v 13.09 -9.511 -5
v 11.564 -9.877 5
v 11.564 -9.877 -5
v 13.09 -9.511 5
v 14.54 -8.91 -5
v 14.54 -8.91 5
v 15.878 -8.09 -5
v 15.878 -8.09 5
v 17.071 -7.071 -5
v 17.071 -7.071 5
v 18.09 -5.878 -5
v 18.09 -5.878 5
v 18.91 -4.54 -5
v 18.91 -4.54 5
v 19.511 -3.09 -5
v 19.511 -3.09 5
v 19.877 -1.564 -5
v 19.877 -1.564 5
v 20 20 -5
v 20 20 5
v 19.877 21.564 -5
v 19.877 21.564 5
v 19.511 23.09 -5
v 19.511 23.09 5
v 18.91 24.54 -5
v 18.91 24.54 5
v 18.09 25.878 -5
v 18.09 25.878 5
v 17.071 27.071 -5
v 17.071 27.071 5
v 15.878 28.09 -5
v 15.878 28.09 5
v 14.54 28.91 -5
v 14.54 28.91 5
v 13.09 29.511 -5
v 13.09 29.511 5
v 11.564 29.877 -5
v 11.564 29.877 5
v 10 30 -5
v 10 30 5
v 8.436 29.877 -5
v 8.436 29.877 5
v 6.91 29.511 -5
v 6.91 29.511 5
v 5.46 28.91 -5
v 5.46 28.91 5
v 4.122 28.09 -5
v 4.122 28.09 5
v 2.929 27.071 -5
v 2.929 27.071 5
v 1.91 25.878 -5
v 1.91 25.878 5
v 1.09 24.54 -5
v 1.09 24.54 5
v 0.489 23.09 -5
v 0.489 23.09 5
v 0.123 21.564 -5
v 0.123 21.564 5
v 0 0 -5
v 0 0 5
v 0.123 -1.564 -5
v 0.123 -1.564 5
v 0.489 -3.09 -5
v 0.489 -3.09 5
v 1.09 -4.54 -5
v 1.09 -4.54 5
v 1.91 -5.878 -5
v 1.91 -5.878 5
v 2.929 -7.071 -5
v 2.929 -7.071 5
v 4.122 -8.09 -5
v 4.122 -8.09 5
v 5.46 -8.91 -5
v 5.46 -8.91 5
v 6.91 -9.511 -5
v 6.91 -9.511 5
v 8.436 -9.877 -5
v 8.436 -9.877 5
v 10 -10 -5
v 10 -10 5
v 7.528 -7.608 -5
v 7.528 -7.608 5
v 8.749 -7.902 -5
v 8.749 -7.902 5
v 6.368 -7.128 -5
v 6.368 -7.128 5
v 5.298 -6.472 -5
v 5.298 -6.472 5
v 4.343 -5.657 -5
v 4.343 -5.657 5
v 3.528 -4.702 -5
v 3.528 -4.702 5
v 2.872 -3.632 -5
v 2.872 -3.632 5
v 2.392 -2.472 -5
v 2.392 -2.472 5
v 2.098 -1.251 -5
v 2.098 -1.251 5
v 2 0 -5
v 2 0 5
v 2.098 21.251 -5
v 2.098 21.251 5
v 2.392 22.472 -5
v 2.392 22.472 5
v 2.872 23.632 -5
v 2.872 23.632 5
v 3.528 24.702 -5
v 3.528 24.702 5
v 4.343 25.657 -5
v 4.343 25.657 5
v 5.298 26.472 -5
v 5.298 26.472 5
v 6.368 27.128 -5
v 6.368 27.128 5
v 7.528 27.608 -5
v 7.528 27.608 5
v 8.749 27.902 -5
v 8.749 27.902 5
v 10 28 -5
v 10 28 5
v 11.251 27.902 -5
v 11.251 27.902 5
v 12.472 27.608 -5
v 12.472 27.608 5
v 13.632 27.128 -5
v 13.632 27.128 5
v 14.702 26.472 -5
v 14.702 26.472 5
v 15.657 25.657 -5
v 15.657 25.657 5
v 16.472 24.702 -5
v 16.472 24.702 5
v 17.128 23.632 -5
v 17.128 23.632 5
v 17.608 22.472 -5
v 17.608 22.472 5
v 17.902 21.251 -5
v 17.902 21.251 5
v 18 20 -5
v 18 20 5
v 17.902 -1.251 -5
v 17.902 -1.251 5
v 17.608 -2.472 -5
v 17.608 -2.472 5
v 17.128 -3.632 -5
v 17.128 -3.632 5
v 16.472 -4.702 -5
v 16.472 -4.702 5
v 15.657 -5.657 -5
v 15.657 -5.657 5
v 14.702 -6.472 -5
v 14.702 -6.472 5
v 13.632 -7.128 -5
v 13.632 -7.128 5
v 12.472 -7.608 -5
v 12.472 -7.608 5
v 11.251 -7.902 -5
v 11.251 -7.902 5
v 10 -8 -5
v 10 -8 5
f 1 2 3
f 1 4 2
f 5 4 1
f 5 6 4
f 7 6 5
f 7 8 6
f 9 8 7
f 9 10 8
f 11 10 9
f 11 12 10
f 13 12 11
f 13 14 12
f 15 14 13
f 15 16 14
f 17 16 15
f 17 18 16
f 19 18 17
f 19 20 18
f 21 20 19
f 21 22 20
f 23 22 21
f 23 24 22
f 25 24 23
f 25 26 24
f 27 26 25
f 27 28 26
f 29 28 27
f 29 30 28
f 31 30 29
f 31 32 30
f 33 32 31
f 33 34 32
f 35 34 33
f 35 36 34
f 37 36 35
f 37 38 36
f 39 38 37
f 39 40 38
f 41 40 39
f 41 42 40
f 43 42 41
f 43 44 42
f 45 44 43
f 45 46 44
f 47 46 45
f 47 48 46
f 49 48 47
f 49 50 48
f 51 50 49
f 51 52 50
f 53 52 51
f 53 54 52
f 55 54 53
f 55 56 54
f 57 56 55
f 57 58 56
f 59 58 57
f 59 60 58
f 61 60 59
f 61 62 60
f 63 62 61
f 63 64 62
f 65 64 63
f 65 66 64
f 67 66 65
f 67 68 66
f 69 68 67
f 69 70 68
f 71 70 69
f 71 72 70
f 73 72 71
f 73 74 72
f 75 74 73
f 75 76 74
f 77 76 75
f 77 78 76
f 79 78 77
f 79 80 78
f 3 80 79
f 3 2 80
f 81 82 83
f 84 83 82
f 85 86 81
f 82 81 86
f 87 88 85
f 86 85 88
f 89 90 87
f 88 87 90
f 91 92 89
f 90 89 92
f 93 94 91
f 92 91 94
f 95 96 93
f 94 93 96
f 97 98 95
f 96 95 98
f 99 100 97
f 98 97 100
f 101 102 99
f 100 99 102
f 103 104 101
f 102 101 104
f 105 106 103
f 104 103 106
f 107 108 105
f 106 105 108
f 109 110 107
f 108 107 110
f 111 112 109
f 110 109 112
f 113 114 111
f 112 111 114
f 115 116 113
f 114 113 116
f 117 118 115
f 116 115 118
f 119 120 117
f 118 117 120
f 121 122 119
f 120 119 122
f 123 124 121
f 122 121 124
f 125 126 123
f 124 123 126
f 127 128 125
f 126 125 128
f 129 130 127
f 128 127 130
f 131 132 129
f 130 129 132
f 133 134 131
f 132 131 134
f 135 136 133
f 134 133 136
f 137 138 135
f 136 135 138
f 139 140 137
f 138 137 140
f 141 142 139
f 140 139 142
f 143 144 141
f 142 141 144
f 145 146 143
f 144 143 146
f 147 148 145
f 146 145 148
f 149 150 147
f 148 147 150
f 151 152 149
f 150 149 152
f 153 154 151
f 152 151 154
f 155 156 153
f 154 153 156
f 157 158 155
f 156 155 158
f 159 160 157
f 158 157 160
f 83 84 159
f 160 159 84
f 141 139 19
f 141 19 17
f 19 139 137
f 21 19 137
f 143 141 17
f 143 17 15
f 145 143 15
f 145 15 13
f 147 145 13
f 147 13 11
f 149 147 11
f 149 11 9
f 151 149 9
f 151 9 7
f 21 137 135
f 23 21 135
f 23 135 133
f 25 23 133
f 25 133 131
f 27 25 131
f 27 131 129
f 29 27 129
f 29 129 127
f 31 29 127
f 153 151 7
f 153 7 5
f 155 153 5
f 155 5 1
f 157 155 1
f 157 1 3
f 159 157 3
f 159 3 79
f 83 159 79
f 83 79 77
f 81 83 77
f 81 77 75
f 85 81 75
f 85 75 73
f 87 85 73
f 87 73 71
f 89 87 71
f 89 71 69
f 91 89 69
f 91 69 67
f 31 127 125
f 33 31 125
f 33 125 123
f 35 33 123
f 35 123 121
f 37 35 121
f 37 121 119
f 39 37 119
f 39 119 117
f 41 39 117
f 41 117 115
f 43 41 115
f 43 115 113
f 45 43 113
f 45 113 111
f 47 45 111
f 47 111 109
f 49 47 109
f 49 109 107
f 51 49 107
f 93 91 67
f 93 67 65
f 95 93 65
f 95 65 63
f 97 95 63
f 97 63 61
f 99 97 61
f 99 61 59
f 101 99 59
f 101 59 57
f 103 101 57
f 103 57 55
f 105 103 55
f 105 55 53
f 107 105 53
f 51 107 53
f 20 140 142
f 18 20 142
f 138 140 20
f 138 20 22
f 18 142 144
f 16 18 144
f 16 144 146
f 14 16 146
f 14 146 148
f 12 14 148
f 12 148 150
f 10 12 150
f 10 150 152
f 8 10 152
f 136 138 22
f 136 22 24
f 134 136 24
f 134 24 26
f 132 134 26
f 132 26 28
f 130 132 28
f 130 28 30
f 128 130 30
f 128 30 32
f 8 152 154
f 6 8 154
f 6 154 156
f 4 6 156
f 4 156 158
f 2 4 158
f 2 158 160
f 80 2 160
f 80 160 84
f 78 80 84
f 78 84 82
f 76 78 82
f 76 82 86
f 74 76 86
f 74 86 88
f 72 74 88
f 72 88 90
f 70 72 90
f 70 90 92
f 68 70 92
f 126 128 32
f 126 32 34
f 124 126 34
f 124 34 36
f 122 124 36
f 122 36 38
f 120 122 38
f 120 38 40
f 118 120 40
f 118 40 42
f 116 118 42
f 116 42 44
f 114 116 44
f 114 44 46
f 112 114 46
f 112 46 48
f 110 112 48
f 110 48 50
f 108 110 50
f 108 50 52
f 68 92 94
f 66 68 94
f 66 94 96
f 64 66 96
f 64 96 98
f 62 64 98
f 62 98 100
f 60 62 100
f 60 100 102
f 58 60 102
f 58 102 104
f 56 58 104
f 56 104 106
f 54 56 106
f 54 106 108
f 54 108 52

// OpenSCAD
linear_extrude(height=10, center=true, convexity=10)
difference() {
    geom_outer();
    geom_inner();
}


module geom_outer() {
    polygon(points=[
        [0, 0],
        [0, 20],
        [0, 0],
        [0.123117, 21.564345],
        [0.489435, 23.09017],
        [1.089935, 24.539905],
        [1.90983, 25.877853],
        [2.928932, 27.071068],
        [4.122147, 28.09017],
        [5.460095, 28.910065],
        [6.90983, 29.510565],
        [8.435655, 29.876883],
        [10, 30],
        [11.564345, 29.876883],
        [13.09017, 29.510565],
        [14.539905, 28.910065],
        [15.877853, 28.09017],
        [17.071068, 27.071068],
        [18.09017, 25.877853],
        [18.910065, 24.539905],
        [19.510565, 23.09017],
        [19.876883, 21.564345],
        [20, 20],
        [0.123117, 21.564345],
        [20, 20],
        [20, 0],
        [20, 20],
        [19.876883, -1.564345],
        [19.510565, -3.09017],
        [18.910065, -4.539905],
        [18.09017, -5.877853],
        [17.071068, -7.071068],
        [15.877853, -8.09017],
        [14.539905, -8.910065],
        [13.09017, -9.510565],
        [11.564345, -9.876883],
        [10, -10],
        [8.435655, -9.876883],
        [6.90983, -9.510565],
        [5.460095, -8.910065],
        [4.122147, -8.09017],
        [2.928932, -7.071068],
        [1.90983, -5.877853],
        [1.089935, -4.539905],
        [0.489435, -3.09017],
        [0.123117, -1.564345],
        [0, 0],
        [19.876883, -1.564345]
    ]);
}

module geom_inner() {
    polygon(points=[
        [2, 0],
        [2, 20],
        [2, 0],
        [2.098493, 21.251476],
        [2.391548, 22.472136],
        [2.871948, 23.631924],
        [3.527864, 24.702282],
        [4.343146, 25.656854],
        [5.297718, 26.472136],
        [6.368076, 27.128052],
        [7.527864, 27.608452],
        [8.748524, 27.901507],
        [10, 28],
        [11.251476, 27.901507],
        [12.472136, 27.608452],
        [13.631924, 27.128052],
        [14.702282, 26.472136],
        [15.656854, 25.656854],
        [16.472136, 24.702282],
        [17.128052, 23.631924],
        [17.608452, 22.472136],
        [17.901507, 21.251476],
        [18, 20],
        [2.098493, 21.251476],
        [18, 20],
        [18, 0],
        [18, 20],
        [17.901507, -1.251476],
        [17.608452, -2.472136],
        [17.128052, -3.631924],
        [16.472136, -4.702282],
        [15.656854, -5.656854],
        [14.702282, -6.472136],
        [13.631924, -7.128052],
        [12.472136, -7.608452],
        [11.251476, -7.901507],
        [10, -8],
        [8.748524, -7.901507],
        [7.527864, -7.608452],
        [6.368076, -7.128052],
        [5.297718, -6.472136],
        [4.343146, -5.656854],
        [3.527864, -4.702282],
        [2.871948, -3.631924],
        [2.391548, -2.472136],
        [2.098493, -1.251476],
        [2, 0],
        [17.901507, -1.251476]
    ]);
}

/* logo2openscad.becdetat.com
// Outer geom
fd 20
pu
lt 90
bk 10
pd
arc 180, 10
pu
bk 10
lt 90
pd
fd 20
pu
lt 90
bk 10
pd
arc 180, 10

// Reset
pu
home
rt 90
fd 2
lt 90

// Inner geom
pd
fd 20
pu
lt 90
bk 8
pd
arc 180, 8
pu
rt 180
fd 8
rt 90
pd
fd 20
pu
lt 90
bk 8
pd
arc 180, 8
*/
